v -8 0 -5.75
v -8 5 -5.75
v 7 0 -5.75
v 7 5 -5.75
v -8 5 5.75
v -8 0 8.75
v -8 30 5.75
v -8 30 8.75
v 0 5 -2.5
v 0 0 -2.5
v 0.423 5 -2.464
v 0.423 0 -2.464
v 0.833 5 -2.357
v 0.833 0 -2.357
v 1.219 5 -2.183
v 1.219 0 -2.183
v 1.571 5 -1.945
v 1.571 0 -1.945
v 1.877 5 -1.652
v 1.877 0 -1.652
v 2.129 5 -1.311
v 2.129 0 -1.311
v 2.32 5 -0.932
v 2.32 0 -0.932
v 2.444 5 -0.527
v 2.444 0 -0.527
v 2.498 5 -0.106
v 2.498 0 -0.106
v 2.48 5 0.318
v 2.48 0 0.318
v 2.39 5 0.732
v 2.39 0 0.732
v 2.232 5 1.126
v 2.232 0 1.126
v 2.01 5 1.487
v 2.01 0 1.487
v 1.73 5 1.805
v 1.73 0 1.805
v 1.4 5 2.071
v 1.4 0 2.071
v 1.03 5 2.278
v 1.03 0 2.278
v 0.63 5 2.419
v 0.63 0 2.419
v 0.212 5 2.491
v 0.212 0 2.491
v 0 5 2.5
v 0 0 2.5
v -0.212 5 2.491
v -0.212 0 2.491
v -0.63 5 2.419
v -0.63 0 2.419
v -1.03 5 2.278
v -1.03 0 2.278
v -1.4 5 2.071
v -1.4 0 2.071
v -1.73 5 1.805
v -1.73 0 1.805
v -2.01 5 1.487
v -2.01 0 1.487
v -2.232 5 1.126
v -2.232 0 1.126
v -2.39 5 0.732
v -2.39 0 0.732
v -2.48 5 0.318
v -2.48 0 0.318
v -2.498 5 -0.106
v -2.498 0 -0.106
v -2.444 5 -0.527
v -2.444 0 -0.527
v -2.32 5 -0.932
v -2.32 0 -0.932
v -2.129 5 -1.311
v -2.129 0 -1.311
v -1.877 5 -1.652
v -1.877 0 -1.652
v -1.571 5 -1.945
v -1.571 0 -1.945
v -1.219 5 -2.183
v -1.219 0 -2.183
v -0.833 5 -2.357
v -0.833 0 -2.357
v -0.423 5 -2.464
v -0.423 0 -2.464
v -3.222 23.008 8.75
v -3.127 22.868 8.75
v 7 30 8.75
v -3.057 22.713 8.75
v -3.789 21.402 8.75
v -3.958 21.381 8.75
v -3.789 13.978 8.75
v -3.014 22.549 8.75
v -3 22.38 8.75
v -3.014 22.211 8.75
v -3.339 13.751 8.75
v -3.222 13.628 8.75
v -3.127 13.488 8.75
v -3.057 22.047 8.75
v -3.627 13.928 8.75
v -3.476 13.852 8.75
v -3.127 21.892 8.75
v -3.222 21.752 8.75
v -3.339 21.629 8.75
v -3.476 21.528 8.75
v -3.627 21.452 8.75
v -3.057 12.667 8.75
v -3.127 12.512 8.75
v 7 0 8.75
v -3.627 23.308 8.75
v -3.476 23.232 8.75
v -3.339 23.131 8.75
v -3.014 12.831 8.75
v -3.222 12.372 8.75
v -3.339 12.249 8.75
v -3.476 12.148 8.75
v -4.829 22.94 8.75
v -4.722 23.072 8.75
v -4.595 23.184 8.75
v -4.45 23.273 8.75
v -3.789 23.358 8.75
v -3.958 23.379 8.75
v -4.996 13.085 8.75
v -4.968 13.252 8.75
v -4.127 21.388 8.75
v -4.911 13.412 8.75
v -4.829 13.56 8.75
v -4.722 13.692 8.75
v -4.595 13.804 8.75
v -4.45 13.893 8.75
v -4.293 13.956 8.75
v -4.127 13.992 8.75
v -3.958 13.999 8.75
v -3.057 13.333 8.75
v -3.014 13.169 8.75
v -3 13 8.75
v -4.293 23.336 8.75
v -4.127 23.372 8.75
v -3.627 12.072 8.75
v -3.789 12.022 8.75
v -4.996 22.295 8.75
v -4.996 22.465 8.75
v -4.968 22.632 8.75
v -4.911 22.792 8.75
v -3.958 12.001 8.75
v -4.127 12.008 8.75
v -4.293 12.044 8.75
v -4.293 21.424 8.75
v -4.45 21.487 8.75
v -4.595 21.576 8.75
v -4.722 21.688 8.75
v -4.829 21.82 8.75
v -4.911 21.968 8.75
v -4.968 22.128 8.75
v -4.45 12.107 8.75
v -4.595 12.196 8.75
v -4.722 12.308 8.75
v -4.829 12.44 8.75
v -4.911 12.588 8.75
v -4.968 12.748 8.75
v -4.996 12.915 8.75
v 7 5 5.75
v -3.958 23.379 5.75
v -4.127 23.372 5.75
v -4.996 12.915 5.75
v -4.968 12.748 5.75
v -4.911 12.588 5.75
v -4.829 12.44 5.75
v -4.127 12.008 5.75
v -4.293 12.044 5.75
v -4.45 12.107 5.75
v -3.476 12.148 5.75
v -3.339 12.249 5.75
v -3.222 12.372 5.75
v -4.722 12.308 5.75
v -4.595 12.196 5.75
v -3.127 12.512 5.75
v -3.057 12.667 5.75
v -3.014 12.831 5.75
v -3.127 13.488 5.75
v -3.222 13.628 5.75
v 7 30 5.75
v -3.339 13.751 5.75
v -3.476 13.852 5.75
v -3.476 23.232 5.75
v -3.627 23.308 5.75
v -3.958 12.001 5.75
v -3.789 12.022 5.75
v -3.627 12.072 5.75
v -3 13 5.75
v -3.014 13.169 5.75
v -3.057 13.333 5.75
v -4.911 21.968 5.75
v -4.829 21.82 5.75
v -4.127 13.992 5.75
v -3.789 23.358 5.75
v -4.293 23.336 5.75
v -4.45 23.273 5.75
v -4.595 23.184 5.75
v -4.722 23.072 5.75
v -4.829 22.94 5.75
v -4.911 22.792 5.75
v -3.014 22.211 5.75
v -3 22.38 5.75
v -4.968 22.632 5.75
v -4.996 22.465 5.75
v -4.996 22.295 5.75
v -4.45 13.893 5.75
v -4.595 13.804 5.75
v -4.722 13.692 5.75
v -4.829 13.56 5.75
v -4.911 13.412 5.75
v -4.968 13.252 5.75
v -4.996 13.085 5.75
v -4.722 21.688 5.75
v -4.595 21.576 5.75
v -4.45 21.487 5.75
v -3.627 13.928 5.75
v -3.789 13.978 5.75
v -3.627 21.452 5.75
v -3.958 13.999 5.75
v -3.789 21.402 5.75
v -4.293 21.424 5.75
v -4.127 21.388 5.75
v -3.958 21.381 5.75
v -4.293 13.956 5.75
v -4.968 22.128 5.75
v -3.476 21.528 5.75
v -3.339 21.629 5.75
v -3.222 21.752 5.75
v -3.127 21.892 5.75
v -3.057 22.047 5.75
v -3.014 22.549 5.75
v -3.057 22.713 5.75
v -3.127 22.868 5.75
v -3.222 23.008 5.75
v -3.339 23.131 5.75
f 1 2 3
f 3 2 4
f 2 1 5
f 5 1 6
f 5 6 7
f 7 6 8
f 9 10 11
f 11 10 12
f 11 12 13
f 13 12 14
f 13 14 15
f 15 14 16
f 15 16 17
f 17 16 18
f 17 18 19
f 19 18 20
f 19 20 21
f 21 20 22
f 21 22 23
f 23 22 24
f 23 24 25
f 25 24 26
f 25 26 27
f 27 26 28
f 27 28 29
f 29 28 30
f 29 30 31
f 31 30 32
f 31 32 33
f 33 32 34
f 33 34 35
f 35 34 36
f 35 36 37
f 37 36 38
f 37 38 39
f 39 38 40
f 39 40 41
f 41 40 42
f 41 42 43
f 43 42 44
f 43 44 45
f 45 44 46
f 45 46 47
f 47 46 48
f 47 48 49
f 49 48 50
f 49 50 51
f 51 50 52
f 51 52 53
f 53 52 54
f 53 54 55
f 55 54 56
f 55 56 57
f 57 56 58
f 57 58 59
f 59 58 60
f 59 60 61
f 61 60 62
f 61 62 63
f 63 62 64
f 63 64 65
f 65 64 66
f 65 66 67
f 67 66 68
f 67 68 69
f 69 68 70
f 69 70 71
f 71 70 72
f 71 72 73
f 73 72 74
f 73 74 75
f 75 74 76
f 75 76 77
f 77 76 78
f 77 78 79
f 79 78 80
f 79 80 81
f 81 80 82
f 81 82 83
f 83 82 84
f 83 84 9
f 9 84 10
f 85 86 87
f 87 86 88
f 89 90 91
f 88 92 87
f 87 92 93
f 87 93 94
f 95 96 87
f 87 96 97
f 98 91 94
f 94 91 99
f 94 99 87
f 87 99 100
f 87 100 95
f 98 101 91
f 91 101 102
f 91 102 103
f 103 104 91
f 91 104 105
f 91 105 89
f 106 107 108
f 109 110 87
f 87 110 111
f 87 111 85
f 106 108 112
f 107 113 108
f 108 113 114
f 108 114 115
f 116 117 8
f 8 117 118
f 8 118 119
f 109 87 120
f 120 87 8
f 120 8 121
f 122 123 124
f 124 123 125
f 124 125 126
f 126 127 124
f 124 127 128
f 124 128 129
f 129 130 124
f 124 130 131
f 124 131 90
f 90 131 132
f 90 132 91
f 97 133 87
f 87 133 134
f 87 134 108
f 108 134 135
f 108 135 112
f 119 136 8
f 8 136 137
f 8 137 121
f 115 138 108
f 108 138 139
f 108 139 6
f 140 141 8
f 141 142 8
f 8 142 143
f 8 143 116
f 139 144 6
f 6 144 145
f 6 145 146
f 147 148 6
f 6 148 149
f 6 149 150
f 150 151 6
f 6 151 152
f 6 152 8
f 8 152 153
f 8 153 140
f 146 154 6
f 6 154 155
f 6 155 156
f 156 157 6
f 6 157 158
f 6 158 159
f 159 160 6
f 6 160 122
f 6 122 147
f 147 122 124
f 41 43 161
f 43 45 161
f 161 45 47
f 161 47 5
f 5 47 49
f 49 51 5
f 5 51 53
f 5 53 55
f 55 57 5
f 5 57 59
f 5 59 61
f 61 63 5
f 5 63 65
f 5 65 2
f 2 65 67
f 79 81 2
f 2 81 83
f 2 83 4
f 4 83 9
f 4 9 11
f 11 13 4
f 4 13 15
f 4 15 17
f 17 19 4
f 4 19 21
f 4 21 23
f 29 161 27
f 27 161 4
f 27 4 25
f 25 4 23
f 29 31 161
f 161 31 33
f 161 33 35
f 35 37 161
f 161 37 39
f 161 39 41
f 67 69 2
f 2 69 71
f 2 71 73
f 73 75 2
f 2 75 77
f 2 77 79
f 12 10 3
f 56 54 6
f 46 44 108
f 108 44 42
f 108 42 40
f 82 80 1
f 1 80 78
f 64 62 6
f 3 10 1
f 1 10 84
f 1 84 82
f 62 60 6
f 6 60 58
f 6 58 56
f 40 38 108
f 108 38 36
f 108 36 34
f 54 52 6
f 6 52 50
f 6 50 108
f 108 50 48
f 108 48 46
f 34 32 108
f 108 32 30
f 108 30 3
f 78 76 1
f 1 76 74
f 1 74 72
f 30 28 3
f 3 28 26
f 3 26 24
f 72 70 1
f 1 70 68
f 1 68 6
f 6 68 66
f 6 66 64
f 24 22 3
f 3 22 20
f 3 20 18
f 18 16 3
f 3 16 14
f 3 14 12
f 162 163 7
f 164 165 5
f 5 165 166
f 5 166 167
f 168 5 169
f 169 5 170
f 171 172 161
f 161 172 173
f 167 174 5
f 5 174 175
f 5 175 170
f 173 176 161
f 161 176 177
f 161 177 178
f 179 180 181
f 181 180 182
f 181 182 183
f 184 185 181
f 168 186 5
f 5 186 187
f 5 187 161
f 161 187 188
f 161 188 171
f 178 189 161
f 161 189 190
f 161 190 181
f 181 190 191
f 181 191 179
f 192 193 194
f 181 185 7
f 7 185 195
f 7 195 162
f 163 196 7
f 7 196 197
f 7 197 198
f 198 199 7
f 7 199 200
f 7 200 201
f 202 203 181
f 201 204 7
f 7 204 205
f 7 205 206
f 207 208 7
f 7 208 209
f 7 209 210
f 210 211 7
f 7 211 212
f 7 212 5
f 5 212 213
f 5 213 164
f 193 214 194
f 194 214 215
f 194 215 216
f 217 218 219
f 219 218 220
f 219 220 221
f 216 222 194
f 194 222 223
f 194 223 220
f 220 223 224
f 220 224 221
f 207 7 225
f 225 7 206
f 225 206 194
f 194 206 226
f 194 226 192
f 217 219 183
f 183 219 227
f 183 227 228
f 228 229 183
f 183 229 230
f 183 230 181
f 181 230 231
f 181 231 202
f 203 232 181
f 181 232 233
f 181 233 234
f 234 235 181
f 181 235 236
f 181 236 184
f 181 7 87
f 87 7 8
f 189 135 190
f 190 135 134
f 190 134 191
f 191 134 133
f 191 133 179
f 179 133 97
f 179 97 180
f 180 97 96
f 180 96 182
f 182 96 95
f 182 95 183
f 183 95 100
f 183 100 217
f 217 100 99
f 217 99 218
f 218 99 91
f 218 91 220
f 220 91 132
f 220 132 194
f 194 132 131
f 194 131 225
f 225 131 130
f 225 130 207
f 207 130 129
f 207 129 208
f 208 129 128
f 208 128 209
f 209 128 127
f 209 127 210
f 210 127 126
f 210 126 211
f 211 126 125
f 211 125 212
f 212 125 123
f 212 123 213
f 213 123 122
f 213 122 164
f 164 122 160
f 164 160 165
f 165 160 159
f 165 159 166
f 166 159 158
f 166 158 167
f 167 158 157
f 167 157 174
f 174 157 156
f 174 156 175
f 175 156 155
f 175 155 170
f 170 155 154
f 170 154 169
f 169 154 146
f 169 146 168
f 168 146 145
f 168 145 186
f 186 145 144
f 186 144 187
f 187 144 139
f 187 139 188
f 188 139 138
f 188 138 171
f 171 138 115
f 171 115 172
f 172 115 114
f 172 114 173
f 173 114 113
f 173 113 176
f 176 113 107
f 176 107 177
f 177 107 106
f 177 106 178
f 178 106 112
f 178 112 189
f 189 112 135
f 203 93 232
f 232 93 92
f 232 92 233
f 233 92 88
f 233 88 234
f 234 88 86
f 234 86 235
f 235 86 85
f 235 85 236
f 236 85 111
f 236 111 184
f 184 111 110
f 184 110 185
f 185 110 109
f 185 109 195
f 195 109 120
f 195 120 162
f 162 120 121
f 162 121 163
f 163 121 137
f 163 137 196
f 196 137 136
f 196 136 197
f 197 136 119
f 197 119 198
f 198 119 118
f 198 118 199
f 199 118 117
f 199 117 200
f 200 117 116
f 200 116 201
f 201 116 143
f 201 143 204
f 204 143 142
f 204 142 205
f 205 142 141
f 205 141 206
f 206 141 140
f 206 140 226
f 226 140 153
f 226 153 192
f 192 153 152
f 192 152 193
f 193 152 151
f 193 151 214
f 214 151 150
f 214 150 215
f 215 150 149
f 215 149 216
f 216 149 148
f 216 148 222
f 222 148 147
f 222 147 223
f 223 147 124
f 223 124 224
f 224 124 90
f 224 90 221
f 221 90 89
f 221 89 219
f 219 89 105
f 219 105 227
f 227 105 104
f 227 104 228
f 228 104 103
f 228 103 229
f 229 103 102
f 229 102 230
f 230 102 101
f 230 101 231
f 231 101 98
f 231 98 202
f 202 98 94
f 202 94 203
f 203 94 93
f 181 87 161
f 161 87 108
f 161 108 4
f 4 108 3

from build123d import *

# Parameters (mm, degrees)
CROQUIS1_W              = 16
CROQUIS1_H              = 11.5
CROQUIS1_R              = 2.5
CROQUIS1_H_2            = 3
SALIENTE_EXTRUIR1_DEPTH = 5
CROQUIS4_W              = 16
CROQUIS4_H              = 3
SALIENTE_EXTRUIR3_DEPTH = 25
CROQUIS6_R              = 1
CORTAR_EXTRUIR1_DEPTH   = 25
CROQUIS7_W              = 1
CROQUIS7_H              = 30
CORTAR_EXTRUIR2_DEPTH   = 25


with BuildPart() as part:
    # Croquis1 → Saliente-Extruir1 (new body)
    # profile 1 of 2: a face of its own
    with BuildSketch(Plane(origin=(0, 0, 0), x_dir=(1, 0, 0), z_dir=(0, 1, 0))):
        Rectangle(CROQUIS1_W, CROQUIS1_H)
        with Locations(Location((0, 0, 0), (0, 0, 270))):
            Circle(CROQUIS1_R, mode=Mode.SUBTRACT)
    # profile 2 of 2: a face of its own
    with BuildSketch(Plane(origin=(0, 0, 0), x_dir=(1, 0, 0), z_dir=(0, 1, 0))):
        with Locations((0, -7.25)):
            Rectangle(CROQUIS1_W, CROQUIS1_H_2)
    extrude(amount=SALIENTE_EXTRUIR1_DEPTH)

    # Croquis4 → Saliente-Extruir3 (add)
    with BuildSketch(Plane(origin=(0, 5, 0), x_dir=(1, 0, 0), z_dir=(0, 1, 0))):
        with Locations((0, -7.25)):
            Rectangle(CROQUIS4_W, CROQUIS4_H)
    extrude(amount=SALIENTE_EXTRUIR3_DEPTH)

    # Croquis6 → Cortar-Extruir1 (cut)
    with BuildSketch(Plane.XY.offset(8.75)):
        with Locations((-4, 22.38)):
            Circle(CROQUIS6_R)
        with Locations((-4, 13)):
            Circle(CROQUIS6_R)
    extrude(amount=-CORTAR_EXTRUIR1_DEPTH, mode=Mode.SUBTRACT)

    # Croquis7 → Cortar-Extruir2 (cut)
    with BuildSketch(Plane.XY.offset(8.75)):
        with Locations((7.5, 15)):
            Rectangle(CROQUIS7_W, CROQUIS7_H)
    extrude(amount=-CORTAR_EXTRUIR2_DEPTH, mode=Mode.SUBTRACT)


solid = part.part
